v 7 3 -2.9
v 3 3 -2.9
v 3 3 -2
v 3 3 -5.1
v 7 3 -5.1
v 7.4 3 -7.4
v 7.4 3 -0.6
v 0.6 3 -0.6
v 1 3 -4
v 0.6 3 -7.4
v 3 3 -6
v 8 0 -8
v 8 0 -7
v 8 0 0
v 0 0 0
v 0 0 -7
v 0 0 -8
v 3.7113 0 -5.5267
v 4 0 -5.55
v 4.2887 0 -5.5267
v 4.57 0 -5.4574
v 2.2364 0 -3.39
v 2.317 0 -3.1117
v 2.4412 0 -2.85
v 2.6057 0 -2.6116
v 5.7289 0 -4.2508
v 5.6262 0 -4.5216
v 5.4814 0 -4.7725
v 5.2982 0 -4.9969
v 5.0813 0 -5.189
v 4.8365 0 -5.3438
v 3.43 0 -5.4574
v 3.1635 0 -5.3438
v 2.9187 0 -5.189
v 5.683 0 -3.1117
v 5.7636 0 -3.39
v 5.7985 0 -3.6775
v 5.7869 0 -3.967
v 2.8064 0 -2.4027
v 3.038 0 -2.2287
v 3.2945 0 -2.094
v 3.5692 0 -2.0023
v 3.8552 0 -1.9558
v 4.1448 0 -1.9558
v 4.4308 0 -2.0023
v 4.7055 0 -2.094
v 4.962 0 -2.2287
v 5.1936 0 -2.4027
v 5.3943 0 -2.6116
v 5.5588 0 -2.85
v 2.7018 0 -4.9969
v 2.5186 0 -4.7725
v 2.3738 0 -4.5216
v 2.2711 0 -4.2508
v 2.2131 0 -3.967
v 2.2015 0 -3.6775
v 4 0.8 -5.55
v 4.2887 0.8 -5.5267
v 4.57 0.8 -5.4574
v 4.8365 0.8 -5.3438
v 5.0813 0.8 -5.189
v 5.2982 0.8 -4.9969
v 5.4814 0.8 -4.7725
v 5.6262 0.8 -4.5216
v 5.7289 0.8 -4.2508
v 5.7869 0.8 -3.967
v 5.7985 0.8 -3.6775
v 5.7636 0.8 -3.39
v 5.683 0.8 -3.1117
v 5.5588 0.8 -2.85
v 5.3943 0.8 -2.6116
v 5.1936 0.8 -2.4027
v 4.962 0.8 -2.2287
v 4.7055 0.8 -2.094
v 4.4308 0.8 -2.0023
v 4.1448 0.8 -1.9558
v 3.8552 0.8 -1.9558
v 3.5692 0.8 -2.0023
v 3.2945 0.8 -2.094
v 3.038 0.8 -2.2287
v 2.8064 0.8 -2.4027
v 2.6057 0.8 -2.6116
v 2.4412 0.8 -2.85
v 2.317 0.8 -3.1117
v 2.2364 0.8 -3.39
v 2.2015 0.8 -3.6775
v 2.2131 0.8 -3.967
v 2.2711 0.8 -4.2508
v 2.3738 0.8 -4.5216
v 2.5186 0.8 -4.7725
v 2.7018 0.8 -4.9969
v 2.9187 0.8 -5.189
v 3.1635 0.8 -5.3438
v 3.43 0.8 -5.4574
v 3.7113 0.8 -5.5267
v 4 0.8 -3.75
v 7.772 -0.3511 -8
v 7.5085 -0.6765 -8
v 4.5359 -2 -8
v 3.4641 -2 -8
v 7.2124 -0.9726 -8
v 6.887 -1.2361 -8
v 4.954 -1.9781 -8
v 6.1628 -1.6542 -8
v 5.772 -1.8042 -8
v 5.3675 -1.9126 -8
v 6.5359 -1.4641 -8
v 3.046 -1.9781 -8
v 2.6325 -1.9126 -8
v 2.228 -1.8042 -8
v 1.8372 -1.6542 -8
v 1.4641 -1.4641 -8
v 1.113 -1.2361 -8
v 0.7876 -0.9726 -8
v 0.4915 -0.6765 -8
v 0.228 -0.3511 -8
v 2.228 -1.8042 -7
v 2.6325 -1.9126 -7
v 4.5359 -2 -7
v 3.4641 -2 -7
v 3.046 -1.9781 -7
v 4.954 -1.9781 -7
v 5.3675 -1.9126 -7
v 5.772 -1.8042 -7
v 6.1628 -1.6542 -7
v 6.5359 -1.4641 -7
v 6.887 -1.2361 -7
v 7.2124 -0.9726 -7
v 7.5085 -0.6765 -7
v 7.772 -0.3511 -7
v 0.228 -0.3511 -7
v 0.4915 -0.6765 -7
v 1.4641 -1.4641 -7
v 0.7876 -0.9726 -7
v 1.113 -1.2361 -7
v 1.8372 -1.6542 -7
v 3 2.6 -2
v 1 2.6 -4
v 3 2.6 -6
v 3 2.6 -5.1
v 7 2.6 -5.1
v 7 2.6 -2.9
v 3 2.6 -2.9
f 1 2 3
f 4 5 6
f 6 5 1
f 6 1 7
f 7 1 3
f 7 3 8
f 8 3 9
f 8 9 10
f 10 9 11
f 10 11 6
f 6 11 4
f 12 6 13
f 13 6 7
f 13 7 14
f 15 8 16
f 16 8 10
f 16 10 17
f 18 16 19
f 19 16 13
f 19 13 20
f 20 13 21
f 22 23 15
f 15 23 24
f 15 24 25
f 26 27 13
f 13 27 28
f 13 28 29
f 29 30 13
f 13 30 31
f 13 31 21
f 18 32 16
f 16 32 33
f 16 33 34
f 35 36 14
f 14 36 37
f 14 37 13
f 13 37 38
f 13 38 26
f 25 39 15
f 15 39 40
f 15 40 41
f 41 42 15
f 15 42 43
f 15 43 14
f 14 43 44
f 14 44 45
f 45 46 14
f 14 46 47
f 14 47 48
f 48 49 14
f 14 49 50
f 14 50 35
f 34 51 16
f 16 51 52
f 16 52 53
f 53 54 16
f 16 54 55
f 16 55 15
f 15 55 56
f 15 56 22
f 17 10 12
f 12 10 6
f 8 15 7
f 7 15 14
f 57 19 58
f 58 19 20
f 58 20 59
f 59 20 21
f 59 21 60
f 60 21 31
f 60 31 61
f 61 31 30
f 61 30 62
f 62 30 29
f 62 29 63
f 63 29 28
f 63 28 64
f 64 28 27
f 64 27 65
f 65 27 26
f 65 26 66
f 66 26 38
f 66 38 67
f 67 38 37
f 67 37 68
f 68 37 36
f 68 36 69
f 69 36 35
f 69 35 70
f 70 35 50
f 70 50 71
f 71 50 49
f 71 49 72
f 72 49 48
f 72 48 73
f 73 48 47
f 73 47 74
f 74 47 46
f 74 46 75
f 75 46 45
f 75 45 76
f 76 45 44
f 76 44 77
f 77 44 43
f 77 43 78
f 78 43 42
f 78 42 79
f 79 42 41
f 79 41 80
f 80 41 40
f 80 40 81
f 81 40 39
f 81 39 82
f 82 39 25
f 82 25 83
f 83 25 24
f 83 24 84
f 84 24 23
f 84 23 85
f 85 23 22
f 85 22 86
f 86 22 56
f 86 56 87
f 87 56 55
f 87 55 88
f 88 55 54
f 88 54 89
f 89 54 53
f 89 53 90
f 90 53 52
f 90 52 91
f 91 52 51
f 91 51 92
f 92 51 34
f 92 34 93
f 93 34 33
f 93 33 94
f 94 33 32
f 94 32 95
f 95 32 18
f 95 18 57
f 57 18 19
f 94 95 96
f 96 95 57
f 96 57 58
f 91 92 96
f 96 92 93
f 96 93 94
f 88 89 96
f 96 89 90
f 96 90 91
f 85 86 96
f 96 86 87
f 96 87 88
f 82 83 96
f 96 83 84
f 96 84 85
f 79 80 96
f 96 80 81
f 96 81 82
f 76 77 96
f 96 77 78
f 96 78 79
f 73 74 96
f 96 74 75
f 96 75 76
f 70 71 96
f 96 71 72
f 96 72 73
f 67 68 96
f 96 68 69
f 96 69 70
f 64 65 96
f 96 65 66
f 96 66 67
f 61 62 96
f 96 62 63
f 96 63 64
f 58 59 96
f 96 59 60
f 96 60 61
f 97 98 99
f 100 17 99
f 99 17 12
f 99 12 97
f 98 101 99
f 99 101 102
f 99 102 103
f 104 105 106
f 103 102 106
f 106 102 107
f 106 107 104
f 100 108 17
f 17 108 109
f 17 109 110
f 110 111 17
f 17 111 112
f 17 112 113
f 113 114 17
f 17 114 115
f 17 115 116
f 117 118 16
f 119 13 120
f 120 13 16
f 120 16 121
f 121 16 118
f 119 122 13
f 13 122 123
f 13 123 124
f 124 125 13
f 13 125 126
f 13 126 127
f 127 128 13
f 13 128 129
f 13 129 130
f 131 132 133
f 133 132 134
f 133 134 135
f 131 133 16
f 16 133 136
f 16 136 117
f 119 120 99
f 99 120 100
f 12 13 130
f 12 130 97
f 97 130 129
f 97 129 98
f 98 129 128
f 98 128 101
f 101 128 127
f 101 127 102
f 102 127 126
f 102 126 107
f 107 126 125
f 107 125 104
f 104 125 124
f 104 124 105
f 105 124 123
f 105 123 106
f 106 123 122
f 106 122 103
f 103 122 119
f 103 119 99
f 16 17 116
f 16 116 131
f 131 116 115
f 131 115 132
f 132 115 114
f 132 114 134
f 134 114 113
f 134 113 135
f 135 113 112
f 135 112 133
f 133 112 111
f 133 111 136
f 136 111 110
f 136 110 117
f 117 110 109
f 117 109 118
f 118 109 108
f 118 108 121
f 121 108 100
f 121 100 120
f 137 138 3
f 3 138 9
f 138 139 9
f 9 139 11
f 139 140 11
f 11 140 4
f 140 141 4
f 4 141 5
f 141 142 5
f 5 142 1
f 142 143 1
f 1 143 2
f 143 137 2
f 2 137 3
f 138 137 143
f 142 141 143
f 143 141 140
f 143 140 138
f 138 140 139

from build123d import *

# Parameters (mm, degrees)
SKETCH1_W               = 8
SKETCH1_H               = 8
BOSS_EXTRUDE1_DEPTH     = 3
CUT_EXTRUDE1_DEPTH      = 12.704699911
CUT_EXTRUDE1_DEPTH_BACK = 12.704699911
CUT_EXTRUDE2_DEPTH      = 11
SKETCH4_R               = 1.8
CUT_EXTRUDE3_DEPTH      = 0.8
SKETCH5_W               = 8
SKETCH5_H               = 1
BOSS_EXTRUDE2_DEPTH     = 2
FILLET1_R               = 4
SKETCH6_W               = 4
SKETCH6_H               = 2.2
CUT_EXTRUDE4_DEPTH      = 0.4


with BuildPart() as part:
    # Sketch1 → Boss-Extrude1 (new body)
    with BuildSketch(Plane(origin=(0, 0, 0), x_dir=(1, 0, 0), z_dir=(0, 1, 0))):
        with Locations((4, 4)):
            Rectangle(SKETCH1_W, SKETCH1_H)
    extrude(amount=BOSS_EXTRUDE1_DEPTH)

    # Sketch2 → Cut-Extrude1 (cut, two sides: drawn at the far end of the back side and taken through both)
    with BuildSketch(Plane.XY.offset(-CUT_EXTRUDE1_DEPTH_BACK)):
        Polygon((0, 0), (0.6, 3), (0, 3), align=None)
        Polygon((8, 0), (7.4, 3), (8, 3), align=None)
    extrude(amount=CUT_EXTRUDE1_DEPTH + CUT_EXTRUDE1_DEPTH_BACK, mode=Mode.SUBTRACT)

    # Sketch3 → Cut-Extrude2 (cut)
    with BuildSketch(Plane(origin=(0, 0, 0), x_dir=(0, 0, -1), z_dir=(1, 0, 0))):
        Polygon((0, 0), (0.6, 3), (0, 3), align=None)
        Polygon((8, 3), (7.4, 3), (8, 0), align=None)
    extrude(amount=CUT_EXTRUDE2_DEPTH, mode=Mode.SUBTRACT)

    # Sketch4 → Cut-Extrude3 (cut)
    with BuildSketch(Plane.XZ):
        with Locations(Location((4, -3.75, 0), (0, 0, 270))):
            Circle(SKETCH4_R)
    extrude(amount=-CUT_EXTRUDE3_DEPTH, mode=Mode.SUBTRACT)

    # Sketch5 → Boss-Extrude2 (add)
    with BuildSketch(Plane.XZ):
        with Locations((4, -7.5)):
            Rectangle(SKETCH5_W, SKETCH5_H)
    extrude(amount=BOSS_EXTRUDE2_DEPTH)

    # Fillet1
    # the kernel refuses this fillet: 4 mm, written as the material it takes off along each edge
    with BuildSketch(Plane(origin=(8, -2, -16.660254038), x_dir=(0, 1, 0), z_dir=(0, 0, 1)), Plane(origin=(0, -2, 1.660254038), x_dir=(0, 1, 0), z_dir=(0, 0, -1))) as fillet1_piece_1:
        with BuildLine():
            CenterArc((4, 3.464101615), FILLET1_R, 180, 60)
            Line((0, 3.464101615), (-0.08, 3.464101615))
            Line((-0.08, 3.464101615), (-0.08, 0))
            Line((-0.08, 0), (0, -0.08))
            ThreePointArc((0, -0.08), (1, -0.08), (1.96, -0.069282032))
            Line((1.96, -0.069282032), (2, 0))
        make_face()
    extrude(amount=18.320508076, mode=Mode.SUBTRACT)

    # Sketch6 → Cut-Extrude4 (cut)
    with BuildSketch(Plane(origin=(0, 3, 0), x_dir=(1, 0, 0), z_dir=(0, 1, 0))):
        Polygon((1, 4), (3, 2), (3, 2.9), (3, 5.1), (3, 6), align=None)
        with Locations((5, 4)):
            Rectangle(SKETCH6_W, SKETCH6_H)
    extrude(amount=-CUT_EXTRUDE4_DEPTH, mode=Mode.SUBTRACT)


solid = part.part
